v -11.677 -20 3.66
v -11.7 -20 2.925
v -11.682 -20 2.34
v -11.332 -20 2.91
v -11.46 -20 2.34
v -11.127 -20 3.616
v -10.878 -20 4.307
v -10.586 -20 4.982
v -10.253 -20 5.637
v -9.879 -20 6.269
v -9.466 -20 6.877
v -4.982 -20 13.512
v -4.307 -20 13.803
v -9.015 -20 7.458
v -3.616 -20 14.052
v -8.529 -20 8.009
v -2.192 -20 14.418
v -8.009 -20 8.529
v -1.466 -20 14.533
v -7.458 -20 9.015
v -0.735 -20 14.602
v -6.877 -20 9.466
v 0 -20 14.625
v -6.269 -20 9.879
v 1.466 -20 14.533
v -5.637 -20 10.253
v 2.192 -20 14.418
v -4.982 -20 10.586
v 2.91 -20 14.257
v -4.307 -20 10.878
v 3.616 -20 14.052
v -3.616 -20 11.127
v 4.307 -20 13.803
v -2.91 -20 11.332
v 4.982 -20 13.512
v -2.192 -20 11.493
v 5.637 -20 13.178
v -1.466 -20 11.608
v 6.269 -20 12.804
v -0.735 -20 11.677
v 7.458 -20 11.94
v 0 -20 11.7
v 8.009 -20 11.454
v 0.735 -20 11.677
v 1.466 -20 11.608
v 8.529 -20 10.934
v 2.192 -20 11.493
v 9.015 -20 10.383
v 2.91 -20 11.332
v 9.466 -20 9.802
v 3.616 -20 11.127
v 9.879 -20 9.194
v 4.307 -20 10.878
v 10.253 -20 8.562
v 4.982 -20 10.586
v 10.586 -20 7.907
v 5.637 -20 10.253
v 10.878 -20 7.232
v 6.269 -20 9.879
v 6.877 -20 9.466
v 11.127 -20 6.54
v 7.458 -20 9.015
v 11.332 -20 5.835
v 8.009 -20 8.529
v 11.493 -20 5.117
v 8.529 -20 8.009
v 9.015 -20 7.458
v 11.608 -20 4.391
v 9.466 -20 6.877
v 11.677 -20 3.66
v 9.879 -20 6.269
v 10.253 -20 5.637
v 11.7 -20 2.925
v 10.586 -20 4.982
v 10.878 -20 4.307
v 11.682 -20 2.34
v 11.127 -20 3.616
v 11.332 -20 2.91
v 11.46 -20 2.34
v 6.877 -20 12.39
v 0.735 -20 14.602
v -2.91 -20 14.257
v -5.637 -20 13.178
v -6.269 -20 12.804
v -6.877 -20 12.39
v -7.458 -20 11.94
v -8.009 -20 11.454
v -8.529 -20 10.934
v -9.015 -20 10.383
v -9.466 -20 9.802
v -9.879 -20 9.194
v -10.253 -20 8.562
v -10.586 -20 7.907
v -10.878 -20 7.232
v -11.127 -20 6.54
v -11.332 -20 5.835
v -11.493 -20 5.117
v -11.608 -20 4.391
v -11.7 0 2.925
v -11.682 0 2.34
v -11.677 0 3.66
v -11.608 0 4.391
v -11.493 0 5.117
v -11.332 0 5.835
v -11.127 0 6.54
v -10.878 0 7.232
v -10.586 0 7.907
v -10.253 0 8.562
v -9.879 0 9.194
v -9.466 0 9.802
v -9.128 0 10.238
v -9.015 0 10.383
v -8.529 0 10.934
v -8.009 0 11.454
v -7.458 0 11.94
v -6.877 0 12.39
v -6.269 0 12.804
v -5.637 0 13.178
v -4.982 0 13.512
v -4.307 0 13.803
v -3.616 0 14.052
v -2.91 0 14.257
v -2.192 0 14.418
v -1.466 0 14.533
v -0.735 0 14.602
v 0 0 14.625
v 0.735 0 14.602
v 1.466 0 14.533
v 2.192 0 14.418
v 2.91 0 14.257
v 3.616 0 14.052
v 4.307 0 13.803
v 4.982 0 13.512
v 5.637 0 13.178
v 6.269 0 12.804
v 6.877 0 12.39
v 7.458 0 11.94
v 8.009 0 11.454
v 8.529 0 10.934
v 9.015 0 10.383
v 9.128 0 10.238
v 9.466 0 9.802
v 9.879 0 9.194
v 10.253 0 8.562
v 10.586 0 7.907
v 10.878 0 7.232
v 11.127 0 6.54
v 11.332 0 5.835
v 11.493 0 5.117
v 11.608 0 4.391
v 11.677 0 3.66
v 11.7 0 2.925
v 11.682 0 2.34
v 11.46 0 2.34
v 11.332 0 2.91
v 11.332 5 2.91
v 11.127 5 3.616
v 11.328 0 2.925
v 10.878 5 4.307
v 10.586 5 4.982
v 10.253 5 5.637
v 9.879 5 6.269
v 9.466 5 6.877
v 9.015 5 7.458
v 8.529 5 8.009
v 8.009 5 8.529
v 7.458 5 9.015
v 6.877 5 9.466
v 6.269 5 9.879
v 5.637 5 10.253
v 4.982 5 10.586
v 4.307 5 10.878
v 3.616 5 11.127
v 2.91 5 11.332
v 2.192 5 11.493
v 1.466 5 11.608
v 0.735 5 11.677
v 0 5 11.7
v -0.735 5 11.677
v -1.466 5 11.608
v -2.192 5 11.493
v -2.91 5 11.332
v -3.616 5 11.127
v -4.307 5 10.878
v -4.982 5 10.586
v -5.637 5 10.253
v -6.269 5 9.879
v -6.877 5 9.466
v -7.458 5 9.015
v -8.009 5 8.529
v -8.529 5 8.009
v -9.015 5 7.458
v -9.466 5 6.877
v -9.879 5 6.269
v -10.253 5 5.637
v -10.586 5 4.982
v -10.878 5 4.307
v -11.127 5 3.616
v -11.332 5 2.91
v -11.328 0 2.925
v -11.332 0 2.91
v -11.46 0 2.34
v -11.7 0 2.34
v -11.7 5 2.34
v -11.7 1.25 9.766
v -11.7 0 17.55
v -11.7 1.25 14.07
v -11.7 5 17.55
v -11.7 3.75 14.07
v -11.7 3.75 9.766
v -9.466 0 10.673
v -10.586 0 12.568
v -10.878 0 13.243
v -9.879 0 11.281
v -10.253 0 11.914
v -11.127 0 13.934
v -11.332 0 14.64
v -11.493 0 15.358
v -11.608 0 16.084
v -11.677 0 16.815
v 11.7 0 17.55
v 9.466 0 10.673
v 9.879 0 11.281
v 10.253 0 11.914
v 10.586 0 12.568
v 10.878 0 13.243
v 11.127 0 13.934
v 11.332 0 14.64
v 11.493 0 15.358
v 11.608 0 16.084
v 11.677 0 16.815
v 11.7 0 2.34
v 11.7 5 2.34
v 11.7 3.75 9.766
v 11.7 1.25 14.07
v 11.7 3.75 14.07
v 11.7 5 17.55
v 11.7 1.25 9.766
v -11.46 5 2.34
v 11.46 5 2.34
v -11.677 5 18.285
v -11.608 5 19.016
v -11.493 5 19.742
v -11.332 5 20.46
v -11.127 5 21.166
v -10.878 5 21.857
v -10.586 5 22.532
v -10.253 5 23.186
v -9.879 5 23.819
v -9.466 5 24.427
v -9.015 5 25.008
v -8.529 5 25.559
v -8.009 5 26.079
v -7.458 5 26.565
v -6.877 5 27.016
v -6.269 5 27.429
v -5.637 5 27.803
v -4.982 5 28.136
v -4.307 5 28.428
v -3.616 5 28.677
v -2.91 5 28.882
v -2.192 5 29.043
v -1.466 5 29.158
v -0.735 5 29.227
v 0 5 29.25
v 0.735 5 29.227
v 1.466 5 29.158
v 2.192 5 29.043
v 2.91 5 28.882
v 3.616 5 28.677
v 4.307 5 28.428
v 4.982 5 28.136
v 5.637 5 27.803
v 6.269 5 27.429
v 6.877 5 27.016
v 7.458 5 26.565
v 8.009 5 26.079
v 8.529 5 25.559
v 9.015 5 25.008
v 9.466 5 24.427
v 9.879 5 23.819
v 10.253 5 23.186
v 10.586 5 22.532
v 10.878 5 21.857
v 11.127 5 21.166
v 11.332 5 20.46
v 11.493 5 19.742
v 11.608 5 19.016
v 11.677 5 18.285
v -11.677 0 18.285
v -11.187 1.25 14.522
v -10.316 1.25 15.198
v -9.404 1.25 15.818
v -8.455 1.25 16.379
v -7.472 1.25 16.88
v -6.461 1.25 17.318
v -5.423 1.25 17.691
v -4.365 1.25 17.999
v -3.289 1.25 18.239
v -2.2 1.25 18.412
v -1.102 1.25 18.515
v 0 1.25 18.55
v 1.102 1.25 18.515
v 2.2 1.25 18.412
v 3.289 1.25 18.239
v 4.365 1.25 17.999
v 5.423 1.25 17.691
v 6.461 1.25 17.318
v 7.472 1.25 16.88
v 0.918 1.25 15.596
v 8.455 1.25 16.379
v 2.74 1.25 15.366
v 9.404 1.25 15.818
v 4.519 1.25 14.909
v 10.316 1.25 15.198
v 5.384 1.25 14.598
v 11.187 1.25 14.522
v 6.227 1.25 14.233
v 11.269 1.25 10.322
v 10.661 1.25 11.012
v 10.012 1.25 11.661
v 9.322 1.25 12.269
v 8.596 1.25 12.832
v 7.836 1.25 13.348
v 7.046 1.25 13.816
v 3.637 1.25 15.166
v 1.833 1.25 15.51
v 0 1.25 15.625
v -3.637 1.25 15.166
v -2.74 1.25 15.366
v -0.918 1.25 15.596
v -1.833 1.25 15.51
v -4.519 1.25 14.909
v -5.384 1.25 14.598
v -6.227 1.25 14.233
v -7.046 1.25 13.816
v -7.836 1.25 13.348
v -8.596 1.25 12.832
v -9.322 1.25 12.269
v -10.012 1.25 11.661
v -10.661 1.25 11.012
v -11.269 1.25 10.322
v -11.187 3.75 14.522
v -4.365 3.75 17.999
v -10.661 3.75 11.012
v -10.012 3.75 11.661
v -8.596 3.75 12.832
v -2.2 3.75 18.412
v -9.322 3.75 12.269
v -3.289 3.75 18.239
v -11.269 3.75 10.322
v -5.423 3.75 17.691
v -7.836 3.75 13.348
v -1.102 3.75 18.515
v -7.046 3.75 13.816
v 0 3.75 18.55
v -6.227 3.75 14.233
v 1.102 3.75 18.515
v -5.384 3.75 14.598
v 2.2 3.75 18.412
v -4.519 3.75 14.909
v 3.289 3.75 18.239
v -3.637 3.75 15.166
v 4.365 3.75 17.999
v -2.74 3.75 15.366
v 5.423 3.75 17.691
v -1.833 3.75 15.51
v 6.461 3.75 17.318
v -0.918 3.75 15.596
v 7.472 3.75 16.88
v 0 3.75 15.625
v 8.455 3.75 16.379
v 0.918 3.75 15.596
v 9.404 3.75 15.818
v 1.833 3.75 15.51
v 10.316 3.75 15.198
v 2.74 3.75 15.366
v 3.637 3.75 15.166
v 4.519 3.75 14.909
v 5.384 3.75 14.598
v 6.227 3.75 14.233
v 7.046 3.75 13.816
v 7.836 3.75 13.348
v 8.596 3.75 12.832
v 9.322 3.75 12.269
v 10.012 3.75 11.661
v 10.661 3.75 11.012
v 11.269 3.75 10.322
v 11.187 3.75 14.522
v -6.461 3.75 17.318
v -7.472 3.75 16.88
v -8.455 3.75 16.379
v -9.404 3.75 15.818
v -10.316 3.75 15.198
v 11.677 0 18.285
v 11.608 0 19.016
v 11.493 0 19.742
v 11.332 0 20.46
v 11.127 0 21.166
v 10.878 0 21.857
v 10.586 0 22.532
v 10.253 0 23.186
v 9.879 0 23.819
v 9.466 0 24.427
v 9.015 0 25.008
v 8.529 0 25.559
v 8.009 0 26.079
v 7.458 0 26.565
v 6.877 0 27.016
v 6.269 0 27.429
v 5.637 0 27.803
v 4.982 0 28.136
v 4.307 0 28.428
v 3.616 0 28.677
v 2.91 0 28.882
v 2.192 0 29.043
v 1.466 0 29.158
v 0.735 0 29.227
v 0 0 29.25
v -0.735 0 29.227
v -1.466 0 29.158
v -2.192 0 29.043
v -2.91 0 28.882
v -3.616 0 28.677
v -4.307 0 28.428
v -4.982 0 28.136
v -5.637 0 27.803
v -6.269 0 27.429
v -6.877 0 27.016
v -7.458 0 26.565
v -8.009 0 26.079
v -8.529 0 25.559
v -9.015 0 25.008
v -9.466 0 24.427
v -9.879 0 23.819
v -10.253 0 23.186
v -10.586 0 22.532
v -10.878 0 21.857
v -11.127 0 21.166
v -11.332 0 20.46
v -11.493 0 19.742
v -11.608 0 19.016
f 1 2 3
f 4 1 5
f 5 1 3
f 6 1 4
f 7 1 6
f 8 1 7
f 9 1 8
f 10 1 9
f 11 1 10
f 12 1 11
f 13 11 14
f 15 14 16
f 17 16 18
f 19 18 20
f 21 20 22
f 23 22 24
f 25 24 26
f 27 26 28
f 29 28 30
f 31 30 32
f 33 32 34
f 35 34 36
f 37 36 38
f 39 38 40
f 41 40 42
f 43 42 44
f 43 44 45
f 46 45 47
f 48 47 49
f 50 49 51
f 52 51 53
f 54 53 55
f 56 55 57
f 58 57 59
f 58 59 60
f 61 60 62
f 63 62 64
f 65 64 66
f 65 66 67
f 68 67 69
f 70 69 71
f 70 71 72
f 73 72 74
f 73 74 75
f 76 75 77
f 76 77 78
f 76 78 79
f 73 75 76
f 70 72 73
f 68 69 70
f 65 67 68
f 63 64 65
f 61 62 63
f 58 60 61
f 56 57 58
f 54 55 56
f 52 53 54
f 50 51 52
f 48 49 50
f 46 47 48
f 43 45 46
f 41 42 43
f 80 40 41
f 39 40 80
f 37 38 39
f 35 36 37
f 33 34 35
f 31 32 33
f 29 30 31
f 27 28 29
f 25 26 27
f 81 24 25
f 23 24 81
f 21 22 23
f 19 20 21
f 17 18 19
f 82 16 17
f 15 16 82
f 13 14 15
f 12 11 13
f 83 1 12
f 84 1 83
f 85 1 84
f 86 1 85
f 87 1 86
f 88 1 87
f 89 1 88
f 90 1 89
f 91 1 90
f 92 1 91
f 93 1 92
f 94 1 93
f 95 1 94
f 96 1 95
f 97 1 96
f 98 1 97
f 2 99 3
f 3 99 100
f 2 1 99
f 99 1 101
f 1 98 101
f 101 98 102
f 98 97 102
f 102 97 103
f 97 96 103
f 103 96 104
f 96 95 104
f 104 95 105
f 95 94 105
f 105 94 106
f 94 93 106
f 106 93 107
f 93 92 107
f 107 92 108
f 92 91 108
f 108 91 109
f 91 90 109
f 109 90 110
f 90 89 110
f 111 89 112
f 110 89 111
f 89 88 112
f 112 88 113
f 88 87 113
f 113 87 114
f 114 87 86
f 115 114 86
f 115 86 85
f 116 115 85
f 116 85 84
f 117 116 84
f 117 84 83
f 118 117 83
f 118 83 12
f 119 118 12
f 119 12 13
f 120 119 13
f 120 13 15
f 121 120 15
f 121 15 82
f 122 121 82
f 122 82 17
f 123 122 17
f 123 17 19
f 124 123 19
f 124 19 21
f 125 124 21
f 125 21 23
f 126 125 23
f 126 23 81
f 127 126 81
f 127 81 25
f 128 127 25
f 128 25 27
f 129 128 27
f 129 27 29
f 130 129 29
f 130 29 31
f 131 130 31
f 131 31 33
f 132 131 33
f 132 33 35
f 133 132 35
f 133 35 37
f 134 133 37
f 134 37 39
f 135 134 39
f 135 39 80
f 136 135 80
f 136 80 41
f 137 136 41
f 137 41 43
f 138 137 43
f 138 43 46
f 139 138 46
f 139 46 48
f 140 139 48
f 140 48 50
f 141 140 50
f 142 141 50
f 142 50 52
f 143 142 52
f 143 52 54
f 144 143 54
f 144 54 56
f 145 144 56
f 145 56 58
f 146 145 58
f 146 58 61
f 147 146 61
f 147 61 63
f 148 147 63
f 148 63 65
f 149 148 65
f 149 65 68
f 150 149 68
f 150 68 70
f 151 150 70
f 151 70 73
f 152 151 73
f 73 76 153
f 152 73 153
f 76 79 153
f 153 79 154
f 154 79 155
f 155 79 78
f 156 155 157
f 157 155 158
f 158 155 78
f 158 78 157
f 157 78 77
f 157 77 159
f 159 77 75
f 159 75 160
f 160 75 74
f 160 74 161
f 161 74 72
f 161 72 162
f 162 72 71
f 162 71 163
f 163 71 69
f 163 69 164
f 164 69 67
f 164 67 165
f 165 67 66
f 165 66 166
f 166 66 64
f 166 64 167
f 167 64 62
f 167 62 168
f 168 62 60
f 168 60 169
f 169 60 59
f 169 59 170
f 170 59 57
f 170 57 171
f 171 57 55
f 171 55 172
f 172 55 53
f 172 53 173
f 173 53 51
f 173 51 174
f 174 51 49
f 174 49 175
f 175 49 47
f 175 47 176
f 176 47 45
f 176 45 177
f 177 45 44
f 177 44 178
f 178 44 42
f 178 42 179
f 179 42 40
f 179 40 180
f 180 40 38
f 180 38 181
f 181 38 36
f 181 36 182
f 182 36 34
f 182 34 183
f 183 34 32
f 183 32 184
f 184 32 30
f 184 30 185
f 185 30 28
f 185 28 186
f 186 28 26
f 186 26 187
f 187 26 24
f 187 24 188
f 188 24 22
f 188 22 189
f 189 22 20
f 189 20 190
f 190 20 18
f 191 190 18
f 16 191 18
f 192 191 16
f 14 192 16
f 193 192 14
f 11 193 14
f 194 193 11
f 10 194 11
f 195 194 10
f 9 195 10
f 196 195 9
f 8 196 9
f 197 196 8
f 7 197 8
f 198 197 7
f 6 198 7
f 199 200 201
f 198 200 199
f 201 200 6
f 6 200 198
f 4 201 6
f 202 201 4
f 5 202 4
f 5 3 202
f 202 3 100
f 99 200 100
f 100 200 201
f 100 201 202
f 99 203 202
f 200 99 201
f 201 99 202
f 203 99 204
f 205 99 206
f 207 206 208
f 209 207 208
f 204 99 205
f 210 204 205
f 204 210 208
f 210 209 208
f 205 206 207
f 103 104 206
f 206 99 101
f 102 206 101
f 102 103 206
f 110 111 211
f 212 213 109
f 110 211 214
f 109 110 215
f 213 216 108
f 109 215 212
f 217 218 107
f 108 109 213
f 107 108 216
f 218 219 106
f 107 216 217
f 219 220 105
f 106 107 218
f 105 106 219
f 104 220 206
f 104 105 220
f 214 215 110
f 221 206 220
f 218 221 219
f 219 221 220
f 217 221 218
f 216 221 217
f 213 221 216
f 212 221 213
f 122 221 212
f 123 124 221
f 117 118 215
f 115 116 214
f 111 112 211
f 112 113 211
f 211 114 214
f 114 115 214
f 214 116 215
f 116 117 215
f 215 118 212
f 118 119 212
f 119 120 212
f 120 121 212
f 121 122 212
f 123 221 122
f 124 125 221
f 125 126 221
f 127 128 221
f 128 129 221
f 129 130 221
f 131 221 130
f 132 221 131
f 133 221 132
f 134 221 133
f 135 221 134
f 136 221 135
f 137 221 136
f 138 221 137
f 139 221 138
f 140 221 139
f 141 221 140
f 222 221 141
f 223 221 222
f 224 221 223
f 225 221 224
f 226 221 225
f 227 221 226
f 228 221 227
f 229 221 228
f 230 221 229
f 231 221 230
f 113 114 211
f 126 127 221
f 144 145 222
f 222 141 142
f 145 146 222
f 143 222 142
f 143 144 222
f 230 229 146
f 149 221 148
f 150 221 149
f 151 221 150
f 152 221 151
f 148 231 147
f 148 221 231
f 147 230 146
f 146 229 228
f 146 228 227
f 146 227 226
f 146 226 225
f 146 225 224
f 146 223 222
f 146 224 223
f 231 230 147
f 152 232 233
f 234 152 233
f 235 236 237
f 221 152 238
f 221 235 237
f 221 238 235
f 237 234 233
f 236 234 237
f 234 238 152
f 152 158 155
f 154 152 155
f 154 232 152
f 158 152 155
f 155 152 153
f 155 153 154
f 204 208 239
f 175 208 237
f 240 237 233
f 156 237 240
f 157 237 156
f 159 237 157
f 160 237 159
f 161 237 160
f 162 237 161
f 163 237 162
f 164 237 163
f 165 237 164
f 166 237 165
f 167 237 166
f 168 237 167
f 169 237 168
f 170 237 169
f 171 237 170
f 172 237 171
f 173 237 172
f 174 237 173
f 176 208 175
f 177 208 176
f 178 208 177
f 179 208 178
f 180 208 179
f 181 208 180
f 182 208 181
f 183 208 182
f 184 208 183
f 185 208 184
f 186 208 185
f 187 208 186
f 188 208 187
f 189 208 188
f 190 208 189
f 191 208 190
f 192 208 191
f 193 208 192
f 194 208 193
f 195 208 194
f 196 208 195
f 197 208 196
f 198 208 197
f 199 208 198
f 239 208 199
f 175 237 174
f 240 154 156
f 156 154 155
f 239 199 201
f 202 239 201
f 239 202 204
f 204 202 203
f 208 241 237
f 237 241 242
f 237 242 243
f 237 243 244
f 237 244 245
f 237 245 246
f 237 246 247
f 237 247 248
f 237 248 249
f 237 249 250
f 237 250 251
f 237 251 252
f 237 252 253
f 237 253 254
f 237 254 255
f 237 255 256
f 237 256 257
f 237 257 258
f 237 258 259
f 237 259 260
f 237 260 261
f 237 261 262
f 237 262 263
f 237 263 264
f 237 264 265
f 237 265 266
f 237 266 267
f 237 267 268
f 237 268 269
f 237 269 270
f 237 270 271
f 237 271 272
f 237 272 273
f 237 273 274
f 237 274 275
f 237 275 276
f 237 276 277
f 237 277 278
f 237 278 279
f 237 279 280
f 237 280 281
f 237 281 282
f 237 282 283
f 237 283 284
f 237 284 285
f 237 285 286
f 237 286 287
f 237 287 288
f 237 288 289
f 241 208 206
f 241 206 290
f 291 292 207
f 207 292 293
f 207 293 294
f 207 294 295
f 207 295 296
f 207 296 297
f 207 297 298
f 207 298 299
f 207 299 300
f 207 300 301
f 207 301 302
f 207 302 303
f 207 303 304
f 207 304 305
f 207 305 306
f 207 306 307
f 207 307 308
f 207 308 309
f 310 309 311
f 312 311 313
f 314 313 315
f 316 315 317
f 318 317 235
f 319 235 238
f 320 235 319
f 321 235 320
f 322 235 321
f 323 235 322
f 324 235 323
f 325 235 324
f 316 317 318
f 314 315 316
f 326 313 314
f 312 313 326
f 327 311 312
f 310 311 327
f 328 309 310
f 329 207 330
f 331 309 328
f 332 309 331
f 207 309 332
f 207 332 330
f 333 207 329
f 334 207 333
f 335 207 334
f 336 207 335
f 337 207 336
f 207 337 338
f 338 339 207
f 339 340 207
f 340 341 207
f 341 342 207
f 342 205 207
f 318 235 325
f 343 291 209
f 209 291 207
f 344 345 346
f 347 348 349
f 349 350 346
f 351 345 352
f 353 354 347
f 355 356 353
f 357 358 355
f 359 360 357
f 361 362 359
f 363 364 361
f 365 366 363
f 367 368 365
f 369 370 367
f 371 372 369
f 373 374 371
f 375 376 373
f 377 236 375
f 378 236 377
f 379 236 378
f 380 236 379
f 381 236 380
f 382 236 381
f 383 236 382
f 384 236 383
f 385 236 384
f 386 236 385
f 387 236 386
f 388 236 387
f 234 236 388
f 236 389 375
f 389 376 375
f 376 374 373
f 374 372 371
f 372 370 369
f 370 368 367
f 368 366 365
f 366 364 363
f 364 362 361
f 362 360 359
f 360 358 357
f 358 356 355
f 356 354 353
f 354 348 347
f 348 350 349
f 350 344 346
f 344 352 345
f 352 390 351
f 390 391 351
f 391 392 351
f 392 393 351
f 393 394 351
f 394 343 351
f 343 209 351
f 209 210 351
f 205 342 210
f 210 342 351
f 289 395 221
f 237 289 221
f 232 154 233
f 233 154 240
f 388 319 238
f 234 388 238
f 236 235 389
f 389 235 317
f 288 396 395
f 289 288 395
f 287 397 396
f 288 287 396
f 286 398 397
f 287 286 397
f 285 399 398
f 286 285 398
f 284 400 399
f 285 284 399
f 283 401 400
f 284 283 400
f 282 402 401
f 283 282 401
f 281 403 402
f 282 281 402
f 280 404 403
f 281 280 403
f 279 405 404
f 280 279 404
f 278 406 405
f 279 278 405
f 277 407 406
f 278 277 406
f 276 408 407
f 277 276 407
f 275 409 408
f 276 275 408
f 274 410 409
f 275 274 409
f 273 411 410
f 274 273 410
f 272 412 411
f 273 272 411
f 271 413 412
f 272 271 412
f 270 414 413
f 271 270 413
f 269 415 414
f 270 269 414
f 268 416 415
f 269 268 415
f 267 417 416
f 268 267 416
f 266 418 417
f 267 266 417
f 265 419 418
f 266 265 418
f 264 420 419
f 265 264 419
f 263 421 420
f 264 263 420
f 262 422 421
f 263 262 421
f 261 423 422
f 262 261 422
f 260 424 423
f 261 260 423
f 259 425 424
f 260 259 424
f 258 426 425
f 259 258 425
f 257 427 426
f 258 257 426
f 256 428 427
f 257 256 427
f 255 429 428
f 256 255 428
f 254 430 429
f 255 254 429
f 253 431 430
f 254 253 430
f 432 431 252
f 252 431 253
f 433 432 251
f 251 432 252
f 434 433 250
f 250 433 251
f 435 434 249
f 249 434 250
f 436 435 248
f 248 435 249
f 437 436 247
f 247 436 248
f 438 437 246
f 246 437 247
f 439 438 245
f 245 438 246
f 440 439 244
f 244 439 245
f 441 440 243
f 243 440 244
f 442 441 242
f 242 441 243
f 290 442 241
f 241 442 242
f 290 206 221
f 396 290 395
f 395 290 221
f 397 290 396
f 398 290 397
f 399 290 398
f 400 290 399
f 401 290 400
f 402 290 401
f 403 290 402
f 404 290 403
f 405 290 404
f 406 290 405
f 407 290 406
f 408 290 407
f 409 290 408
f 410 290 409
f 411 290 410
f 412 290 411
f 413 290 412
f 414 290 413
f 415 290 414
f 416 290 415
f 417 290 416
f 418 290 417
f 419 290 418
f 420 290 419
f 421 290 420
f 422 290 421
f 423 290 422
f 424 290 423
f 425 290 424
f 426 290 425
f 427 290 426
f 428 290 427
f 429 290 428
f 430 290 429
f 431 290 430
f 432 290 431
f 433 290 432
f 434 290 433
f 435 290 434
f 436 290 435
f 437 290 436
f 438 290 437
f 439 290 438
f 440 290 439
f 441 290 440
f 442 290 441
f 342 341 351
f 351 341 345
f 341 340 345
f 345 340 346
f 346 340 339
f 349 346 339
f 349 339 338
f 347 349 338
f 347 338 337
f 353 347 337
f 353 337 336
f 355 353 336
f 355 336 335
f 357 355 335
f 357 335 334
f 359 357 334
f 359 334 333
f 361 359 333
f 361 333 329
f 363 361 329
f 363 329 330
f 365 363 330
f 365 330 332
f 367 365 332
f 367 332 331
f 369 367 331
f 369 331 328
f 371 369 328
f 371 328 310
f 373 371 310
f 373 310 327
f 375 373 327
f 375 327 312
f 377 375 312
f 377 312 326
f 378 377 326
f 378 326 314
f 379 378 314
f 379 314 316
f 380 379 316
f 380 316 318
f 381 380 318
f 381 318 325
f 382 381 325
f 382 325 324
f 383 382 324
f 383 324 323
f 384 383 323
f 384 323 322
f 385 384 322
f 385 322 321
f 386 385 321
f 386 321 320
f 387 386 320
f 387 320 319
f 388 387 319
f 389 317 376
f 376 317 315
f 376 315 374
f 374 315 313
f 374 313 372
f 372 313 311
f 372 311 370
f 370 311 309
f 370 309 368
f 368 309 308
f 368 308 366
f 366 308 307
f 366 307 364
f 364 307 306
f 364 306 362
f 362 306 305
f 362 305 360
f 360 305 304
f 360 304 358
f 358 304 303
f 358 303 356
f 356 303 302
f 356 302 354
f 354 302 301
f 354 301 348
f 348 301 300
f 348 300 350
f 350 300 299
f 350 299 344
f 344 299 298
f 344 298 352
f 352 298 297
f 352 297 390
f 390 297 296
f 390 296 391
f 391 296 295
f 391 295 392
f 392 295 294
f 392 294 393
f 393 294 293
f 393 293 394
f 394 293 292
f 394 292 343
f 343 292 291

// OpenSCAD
$fn=100;

module hexagon(size, height) {
  boxWidth = size/1.75;
  for (r = [-60, 0, 60]) rotate([0,0,r]) cube([boxWidth, size, height], true);
}


emtd = 23.4;
thickness = 5;

tiethickness = 0.5 * thickness;

%translate([0,50,0])
rotate([90,0,0])
cylinder(d=emtd, 100);


difference() {
	union() {
		translate([emtd/-2, 0, 0])
		cube([emtd, thickness, 0.75 * emtd]);

		translate([0,thickness,emtd * 0.75])
		rotate([90,0,0])
		cylinder(d=emtd, thickness);

		translate([0,0,emtd/8])
		rotate([90,0,0])
		cylinder(d=emtd, thickness * 4);
	}

	translate([0,50,0])
	rotate([90,0,0])
	cylinder(d=emtd, 100);

	translate([0,(tiethickness + thickness)/2,1])
	rotate([90,0,0])
	difference() {
		cylinder(d=1.5 * emtd, tiethickness);
		translate([0,0,-1])
		cylinder(d=1.25 * emtd, 3 * thickness);
	}


	translate([-2 * emtd, -5 * thickness, -0.9 * emtd])
	cube([4 * emtd, 10 * thickness, emtd]);

}
